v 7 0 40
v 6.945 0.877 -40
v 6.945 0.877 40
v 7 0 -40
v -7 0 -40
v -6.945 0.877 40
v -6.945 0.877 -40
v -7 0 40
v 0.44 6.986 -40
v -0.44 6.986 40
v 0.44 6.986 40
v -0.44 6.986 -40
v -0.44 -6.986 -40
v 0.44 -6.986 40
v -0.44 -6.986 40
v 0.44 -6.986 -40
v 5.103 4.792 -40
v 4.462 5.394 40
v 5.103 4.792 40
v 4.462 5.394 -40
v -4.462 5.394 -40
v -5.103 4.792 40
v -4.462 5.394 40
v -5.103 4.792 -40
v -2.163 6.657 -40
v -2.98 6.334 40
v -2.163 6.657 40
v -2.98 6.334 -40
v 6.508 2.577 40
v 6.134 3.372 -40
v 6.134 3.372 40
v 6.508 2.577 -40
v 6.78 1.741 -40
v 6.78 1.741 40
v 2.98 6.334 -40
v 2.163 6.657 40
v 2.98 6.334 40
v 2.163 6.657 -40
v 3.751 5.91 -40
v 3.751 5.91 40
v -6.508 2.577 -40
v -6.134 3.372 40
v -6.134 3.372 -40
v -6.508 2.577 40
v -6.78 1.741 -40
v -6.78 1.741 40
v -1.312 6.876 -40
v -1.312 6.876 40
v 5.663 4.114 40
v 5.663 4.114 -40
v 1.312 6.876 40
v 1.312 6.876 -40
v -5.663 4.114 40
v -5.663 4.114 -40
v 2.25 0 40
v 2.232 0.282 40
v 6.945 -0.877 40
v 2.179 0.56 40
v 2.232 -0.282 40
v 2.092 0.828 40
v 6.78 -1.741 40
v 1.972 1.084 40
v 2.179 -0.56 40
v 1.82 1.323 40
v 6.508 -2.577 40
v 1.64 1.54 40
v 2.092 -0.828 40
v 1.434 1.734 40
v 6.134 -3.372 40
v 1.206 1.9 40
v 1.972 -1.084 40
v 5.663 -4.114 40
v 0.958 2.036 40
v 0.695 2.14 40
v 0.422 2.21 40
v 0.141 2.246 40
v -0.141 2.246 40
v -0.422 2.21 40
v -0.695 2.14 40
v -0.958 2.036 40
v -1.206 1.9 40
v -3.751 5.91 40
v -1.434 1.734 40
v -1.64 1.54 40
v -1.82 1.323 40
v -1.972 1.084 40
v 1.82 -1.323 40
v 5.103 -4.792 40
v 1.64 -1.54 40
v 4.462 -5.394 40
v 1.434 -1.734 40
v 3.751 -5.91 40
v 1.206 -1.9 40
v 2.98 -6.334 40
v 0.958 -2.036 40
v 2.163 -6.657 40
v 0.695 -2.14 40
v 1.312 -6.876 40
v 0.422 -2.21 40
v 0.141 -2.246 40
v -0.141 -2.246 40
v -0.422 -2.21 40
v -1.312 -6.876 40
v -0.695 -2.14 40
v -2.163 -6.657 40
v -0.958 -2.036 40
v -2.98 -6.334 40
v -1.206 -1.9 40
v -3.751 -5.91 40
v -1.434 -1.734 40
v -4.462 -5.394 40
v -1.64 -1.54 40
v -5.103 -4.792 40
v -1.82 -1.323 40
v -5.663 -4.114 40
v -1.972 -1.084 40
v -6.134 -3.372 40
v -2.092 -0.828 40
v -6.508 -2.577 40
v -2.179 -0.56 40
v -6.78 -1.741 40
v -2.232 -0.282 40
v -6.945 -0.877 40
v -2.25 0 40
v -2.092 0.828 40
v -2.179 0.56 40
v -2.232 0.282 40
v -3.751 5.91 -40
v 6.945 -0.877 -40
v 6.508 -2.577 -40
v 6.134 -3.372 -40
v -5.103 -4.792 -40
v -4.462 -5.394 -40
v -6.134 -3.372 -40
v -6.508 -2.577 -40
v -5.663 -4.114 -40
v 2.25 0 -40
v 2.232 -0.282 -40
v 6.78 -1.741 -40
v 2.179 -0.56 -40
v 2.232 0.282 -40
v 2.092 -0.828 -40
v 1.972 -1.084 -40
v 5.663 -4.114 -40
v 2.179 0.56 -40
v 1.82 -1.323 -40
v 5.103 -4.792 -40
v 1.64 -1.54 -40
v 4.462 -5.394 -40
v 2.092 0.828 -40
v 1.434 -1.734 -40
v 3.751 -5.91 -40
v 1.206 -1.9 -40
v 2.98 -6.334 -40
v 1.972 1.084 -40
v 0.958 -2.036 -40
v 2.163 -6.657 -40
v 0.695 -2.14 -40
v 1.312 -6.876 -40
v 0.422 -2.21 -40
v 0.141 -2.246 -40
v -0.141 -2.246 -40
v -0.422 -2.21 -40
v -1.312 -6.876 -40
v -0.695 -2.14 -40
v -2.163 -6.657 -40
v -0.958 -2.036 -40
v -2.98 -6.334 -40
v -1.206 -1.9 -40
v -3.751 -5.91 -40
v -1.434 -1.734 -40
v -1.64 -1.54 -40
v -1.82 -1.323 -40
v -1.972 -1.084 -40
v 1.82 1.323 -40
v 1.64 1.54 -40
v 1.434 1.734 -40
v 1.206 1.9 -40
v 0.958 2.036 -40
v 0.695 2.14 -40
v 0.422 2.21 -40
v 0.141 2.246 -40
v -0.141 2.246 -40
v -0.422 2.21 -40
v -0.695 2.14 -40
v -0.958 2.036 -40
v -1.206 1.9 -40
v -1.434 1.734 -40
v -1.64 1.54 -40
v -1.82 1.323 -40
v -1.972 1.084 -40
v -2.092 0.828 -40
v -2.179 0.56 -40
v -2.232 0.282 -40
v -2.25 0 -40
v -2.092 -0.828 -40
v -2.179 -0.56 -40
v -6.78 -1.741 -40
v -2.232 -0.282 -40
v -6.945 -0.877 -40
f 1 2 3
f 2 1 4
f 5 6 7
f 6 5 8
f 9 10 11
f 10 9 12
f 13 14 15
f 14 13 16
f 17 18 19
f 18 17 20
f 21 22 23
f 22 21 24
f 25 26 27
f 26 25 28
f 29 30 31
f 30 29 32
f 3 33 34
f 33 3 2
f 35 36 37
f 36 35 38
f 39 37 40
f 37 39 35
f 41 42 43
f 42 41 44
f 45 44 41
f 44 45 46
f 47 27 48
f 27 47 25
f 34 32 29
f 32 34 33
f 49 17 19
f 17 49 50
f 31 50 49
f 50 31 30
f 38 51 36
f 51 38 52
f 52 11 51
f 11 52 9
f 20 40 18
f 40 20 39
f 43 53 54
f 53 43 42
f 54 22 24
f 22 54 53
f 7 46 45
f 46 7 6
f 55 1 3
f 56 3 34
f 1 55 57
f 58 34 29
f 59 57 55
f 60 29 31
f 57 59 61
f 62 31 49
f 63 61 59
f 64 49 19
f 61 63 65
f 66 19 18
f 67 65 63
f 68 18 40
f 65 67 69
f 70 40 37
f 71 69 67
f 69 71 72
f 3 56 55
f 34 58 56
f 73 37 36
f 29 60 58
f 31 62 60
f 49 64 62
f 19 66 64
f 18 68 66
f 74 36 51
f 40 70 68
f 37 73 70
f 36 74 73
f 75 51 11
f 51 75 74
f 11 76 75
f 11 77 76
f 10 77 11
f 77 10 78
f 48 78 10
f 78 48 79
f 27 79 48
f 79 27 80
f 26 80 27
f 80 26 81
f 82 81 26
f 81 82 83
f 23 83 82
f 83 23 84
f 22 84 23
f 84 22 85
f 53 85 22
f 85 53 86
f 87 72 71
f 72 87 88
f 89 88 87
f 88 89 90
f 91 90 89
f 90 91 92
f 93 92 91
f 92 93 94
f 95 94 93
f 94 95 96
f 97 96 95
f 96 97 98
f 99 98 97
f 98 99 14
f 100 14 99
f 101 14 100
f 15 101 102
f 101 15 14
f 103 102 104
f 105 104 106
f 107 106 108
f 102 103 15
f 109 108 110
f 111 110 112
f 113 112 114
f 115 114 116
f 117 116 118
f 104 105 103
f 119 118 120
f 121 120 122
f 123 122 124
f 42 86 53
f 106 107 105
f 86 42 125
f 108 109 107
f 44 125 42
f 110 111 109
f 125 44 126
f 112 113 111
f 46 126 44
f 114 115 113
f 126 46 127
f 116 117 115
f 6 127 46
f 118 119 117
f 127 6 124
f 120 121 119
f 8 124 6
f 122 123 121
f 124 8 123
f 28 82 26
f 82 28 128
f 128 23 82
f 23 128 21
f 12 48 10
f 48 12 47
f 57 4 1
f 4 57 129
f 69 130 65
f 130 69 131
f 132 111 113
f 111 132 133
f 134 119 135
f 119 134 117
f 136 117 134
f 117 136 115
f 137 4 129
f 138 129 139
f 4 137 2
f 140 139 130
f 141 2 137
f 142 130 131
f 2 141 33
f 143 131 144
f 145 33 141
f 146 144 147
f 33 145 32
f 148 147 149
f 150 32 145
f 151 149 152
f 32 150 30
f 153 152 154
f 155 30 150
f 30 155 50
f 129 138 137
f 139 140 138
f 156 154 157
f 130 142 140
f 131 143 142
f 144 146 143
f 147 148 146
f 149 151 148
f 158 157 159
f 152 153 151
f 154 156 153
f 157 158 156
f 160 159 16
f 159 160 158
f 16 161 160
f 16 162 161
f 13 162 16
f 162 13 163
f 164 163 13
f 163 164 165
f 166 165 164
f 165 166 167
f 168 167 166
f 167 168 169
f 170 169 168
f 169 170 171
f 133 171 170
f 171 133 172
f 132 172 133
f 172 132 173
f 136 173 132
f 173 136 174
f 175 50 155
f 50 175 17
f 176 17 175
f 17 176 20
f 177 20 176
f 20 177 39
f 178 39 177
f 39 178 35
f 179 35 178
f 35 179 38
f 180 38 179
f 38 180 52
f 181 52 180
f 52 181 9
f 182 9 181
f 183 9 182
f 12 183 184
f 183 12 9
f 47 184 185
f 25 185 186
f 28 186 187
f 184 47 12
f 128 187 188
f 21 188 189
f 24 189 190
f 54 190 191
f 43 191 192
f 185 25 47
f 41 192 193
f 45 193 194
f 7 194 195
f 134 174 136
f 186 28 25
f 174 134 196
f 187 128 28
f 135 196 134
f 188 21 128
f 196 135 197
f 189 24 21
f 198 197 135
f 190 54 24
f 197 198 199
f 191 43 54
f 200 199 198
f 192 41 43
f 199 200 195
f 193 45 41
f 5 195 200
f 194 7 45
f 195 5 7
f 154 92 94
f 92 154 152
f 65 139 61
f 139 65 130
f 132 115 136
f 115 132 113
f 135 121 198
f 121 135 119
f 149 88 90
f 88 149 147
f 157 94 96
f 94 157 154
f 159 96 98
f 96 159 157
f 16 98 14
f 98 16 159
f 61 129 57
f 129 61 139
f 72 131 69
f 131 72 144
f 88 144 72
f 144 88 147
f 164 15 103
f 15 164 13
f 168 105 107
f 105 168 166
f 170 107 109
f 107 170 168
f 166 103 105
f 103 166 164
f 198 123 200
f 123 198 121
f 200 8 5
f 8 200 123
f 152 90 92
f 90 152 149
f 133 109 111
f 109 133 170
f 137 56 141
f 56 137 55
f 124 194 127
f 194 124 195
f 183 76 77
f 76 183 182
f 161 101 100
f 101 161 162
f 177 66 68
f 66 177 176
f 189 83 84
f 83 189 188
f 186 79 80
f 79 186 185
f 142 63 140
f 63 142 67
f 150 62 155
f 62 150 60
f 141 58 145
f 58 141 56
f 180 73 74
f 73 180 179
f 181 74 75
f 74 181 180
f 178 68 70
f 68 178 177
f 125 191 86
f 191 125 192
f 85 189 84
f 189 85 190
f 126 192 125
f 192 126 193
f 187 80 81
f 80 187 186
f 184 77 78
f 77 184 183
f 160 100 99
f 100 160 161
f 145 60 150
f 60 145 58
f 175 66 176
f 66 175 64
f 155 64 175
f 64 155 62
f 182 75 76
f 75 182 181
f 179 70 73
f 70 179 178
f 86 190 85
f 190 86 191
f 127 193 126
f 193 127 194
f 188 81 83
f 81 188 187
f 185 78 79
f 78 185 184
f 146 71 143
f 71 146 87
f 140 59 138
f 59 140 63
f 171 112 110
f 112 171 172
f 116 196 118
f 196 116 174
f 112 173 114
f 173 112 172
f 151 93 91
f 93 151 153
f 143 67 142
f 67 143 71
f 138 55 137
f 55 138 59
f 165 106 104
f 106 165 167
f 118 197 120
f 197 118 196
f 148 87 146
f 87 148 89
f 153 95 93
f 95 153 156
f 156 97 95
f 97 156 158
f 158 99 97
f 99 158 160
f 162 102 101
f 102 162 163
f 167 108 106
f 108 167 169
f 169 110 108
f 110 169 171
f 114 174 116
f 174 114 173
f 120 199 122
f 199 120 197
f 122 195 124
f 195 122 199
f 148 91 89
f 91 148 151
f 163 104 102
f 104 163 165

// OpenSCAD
$fn = 50;


difference() {
	union() {
		translate(v = [0, 0, -40.0000000000]) {
			cylinder(h = 80, r = 7.0000000000);
		}
	}
	union() {
		translate(v = [0, 0, -100.0000000000]) {
			cylinder(h = 200, r = 2.2500000000);
		}
	}
}
